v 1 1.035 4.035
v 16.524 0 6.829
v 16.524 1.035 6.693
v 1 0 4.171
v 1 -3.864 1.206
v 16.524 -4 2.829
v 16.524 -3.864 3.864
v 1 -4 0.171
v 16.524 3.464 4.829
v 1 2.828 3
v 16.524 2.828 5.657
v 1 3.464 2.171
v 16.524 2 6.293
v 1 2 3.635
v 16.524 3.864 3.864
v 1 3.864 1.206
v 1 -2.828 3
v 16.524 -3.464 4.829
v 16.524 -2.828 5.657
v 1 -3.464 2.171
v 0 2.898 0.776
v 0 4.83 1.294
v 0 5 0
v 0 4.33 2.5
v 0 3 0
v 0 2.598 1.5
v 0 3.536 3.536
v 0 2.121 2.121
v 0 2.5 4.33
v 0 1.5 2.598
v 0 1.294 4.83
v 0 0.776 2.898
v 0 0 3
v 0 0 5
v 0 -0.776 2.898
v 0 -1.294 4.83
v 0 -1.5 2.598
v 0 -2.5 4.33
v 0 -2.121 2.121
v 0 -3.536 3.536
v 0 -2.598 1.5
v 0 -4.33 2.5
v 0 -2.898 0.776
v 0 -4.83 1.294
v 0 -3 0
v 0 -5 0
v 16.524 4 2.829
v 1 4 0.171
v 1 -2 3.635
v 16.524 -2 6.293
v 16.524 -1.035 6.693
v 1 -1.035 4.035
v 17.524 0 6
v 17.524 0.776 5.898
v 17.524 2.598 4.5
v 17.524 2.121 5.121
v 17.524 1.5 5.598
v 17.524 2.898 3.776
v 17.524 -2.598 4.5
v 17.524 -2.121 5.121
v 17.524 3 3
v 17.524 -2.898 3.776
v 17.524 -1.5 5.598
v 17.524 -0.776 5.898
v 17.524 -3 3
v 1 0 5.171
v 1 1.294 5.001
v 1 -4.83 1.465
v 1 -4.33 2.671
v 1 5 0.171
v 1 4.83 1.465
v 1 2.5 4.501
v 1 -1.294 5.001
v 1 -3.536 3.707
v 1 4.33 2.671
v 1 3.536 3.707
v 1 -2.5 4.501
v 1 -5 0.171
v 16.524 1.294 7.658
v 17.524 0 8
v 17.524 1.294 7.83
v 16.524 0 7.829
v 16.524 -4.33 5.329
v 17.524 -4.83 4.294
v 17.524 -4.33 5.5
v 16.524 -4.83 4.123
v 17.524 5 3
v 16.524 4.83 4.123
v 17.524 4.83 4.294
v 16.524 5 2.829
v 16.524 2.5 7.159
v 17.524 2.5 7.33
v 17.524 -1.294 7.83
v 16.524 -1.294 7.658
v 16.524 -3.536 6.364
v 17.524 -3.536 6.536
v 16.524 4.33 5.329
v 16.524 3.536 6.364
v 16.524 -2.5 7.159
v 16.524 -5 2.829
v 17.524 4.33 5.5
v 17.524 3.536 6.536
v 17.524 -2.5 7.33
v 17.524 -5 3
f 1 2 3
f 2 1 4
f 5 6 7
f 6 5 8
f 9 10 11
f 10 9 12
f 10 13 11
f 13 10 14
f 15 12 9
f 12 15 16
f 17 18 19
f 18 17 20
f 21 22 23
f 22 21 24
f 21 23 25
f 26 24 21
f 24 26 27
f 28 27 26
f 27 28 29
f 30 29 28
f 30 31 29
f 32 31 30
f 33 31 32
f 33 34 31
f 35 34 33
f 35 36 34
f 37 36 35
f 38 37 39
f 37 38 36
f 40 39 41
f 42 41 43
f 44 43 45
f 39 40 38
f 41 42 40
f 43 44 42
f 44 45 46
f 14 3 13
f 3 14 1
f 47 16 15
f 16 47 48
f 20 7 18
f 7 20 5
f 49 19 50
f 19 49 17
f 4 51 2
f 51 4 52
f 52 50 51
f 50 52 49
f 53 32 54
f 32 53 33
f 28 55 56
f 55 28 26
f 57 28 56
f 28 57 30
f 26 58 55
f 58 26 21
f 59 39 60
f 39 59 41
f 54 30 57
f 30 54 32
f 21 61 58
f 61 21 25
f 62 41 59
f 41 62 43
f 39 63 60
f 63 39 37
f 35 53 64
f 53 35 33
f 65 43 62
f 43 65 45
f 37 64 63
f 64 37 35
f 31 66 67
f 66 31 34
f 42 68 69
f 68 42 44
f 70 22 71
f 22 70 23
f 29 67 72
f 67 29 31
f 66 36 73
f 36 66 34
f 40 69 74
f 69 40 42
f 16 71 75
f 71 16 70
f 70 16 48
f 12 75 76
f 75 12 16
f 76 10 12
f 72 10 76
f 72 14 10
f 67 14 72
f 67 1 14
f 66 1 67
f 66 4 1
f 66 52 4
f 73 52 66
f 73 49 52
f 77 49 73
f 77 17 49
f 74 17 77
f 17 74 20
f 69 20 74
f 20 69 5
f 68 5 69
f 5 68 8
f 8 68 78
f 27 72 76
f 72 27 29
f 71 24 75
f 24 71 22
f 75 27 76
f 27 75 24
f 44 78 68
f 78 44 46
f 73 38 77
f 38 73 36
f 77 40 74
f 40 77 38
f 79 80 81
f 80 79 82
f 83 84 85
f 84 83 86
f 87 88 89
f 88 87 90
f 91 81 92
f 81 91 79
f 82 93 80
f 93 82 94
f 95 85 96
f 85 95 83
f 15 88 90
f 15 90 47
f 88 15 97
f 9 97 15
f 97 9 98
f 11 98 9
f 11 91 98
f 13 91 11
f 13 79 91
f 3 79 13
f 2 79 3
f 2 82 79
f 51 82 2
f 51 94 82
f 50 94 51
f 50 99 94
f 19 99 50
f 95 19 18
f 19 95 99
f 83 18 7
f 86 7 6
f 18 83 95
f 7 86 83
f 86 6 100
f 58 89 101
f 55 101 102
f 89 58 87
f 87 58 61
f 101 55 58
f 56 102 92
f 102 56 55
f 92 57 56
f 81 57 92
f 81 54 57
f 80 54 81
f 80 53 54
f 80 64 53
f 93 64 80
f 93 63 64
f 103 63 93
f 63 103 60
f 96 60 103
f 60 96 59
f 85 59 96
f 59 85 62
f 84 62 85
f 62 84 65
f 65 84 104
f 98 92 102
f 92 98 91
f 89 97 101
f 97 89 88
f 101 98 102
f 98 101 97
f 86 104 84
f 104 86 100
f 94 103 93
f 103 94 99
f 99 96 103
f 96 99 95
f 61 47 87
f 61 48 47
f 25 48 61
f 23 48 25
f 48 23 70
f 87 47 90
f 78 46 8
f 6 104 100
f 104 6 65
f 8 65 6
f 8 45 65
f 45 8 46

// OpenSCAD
// file: ../build_environments.scad
// build_environments.scad: modules to build level sections
//

module pool(diameter=10.0, wall_height=2.0, step_width=3.0, connections=[])
{
    difference() {
        union() {
        difference() {
            cylinder(h=0.5,r1=diameter+step_width,r2=diameter+step_width,$fn=48);
            translate([0,0,-0.1])
                cylinder(h=0.7,r1=diameter,r2=diameter,$fn=48);
        }
        difference() {
            cylinder(h=wall_height,r1=diameter+step_width+1.0,r2=diameter+step_width+1.0,$fn=48);
            translate([0,0,-0.1])
                cylinder(h=wall_height+0.2,r1=diameter+step_width,r2=diameter+step_width,$fn=48);
        }
        }
    
        for (c = connections)
        {
            rotate([0,90,0]) {
                angle = atan2(c[1],c[0]);
                rotate([-angle,0,0]) {
                    cylinder(h=diameter+5.0,r1=c[2],r2=c[2],$fn=48);
                }
            }
        }
    }
}

module straight(length=10.0, width=2.0, dy1=0.0, dy2=0.0, dz=0.0)
{
    dims = [0, 0, 0, 0, 0, (dz/length)];
    matrix = [
        [ 1, dims[0], dims[1], 0 ],
        [ dims[2], 1, dims[4], 0 ],
        [ dims[5], dims[3], 1, 0 ],
        [ 0, 0, 0, 1 ]
    ];
    multmatrix(matrix)
    difference() {
        translate([dy1,0,0])
        union() {
            rotate([0,90,0]) {
                difference() {
                    cylinder(h=(length-dy1-dy2),r1=width+1.0,r2=width+1.0,$fn=24);
                    translate([0,0,-0.1])
                        cylinder(h=(length-dy1-dy2+0.2),r1=width,r2=width,$fn=24);
                }
                difference() {
                    cylinder(h=1.0,r1=width+2.0,r2=width+2.0,$fn=24);
                    translate([0,0,-0.1])
                        cylinder(h=1.2,r1=width,r2=width,$fn=24);
                }
                translate([0,0,(length-dy1-dy2)-1.0]) {
                    difference() {
                        cylinder(h=1.0,r1=width+2.0,r2=width+2.0,$fn=24);
                        translate([0,0,-0.1])
                            cylinder(h=1.2,r1=width,r2=width,$fn=24);
                    }
                }
            }
        }
        translate([0,0,-(2*width+4.0)/2])
            cube([3*length,3*length,2*width+4.0],center=true);
    }
}

module curve(p0=[0,0], center=[0,0], dir=1, angle=0.0, width=2.0)
{
    radius = sqrt((p0[0]-center[0])*(p0[0]-center[0]) + (p0[1]-center[1])*(p0[1]-center[1]));
    if (dir == 0) {
        difference() {
            rotate([0,0,-90])
            difference() {
                rotate_extrude(angle = angle, convexity = 10, $fn=32)
                    translate([radius, 0, 0])
                        circle(r = width+1.0,$fn=24);
                rotate([0,0,-1.0])
                    rotate_extrude(angle = angle+2.0, convexity = 10, $fn=32)
                        translate([radius, 0, 0])
                            circle(r = width,$fn=24);
            }
            translate([0,0,-(2*width+4.0)/2])
                cube([5*radius,5*radius,2*width+4.0],center=true);
        }
    }
    else {
        difference() {
            rotate([0,0,90])
            difference() {
                rotate_extrude(angle = -angle, convexity = 10, $fn=32)
                    translate([radius, 0, 0])
                        circle(r = width+1.0,$fn=24);
                rotate([0,0,1.0])
                    rotate_extrude(angle = -angle-2.0, convexity = 10, $fn=32)
                        translate([radius, 0, 0])
                            circle(r = width,$fn=24);
            }
            translate([0,0,-(2*width+4.0)/2])
                cube([5*radius,5*radius,2*width+4.0],center=true);
        }
    }

}

// test pool
//pool(diameter=12.0000, wall_height=3.0000, step_width=3.0000, connections=[[0.0000,-26.0000,2.0000], [23.6074,0.0000,2.0000]]);

// test straight, slope
//straight(length=26.0000, width=2.0000, dy1=11.8322, dy2=6.7082, dz=0.0000);
//straight(length=29.1549, width=12.0000, dy1=0.0000, dy2=0.0000, dz=-15.0000);

// test curve
//curve(p0=[23.6074, 0.0000], center=[23.6074, 5.0000], dir=0, angle=60.1011, width=2.0000);
//curve(p0=[33.6426, 12.4219], center=[37.9771, 9.9295], dir=1, angle=120.4627, width=2.0000);
// main file
use <../build_environments.scad>;
straight(length=17.5240, width=3.0000, dy1=0.0000, dy2=0.0000, dz=3.0000);
